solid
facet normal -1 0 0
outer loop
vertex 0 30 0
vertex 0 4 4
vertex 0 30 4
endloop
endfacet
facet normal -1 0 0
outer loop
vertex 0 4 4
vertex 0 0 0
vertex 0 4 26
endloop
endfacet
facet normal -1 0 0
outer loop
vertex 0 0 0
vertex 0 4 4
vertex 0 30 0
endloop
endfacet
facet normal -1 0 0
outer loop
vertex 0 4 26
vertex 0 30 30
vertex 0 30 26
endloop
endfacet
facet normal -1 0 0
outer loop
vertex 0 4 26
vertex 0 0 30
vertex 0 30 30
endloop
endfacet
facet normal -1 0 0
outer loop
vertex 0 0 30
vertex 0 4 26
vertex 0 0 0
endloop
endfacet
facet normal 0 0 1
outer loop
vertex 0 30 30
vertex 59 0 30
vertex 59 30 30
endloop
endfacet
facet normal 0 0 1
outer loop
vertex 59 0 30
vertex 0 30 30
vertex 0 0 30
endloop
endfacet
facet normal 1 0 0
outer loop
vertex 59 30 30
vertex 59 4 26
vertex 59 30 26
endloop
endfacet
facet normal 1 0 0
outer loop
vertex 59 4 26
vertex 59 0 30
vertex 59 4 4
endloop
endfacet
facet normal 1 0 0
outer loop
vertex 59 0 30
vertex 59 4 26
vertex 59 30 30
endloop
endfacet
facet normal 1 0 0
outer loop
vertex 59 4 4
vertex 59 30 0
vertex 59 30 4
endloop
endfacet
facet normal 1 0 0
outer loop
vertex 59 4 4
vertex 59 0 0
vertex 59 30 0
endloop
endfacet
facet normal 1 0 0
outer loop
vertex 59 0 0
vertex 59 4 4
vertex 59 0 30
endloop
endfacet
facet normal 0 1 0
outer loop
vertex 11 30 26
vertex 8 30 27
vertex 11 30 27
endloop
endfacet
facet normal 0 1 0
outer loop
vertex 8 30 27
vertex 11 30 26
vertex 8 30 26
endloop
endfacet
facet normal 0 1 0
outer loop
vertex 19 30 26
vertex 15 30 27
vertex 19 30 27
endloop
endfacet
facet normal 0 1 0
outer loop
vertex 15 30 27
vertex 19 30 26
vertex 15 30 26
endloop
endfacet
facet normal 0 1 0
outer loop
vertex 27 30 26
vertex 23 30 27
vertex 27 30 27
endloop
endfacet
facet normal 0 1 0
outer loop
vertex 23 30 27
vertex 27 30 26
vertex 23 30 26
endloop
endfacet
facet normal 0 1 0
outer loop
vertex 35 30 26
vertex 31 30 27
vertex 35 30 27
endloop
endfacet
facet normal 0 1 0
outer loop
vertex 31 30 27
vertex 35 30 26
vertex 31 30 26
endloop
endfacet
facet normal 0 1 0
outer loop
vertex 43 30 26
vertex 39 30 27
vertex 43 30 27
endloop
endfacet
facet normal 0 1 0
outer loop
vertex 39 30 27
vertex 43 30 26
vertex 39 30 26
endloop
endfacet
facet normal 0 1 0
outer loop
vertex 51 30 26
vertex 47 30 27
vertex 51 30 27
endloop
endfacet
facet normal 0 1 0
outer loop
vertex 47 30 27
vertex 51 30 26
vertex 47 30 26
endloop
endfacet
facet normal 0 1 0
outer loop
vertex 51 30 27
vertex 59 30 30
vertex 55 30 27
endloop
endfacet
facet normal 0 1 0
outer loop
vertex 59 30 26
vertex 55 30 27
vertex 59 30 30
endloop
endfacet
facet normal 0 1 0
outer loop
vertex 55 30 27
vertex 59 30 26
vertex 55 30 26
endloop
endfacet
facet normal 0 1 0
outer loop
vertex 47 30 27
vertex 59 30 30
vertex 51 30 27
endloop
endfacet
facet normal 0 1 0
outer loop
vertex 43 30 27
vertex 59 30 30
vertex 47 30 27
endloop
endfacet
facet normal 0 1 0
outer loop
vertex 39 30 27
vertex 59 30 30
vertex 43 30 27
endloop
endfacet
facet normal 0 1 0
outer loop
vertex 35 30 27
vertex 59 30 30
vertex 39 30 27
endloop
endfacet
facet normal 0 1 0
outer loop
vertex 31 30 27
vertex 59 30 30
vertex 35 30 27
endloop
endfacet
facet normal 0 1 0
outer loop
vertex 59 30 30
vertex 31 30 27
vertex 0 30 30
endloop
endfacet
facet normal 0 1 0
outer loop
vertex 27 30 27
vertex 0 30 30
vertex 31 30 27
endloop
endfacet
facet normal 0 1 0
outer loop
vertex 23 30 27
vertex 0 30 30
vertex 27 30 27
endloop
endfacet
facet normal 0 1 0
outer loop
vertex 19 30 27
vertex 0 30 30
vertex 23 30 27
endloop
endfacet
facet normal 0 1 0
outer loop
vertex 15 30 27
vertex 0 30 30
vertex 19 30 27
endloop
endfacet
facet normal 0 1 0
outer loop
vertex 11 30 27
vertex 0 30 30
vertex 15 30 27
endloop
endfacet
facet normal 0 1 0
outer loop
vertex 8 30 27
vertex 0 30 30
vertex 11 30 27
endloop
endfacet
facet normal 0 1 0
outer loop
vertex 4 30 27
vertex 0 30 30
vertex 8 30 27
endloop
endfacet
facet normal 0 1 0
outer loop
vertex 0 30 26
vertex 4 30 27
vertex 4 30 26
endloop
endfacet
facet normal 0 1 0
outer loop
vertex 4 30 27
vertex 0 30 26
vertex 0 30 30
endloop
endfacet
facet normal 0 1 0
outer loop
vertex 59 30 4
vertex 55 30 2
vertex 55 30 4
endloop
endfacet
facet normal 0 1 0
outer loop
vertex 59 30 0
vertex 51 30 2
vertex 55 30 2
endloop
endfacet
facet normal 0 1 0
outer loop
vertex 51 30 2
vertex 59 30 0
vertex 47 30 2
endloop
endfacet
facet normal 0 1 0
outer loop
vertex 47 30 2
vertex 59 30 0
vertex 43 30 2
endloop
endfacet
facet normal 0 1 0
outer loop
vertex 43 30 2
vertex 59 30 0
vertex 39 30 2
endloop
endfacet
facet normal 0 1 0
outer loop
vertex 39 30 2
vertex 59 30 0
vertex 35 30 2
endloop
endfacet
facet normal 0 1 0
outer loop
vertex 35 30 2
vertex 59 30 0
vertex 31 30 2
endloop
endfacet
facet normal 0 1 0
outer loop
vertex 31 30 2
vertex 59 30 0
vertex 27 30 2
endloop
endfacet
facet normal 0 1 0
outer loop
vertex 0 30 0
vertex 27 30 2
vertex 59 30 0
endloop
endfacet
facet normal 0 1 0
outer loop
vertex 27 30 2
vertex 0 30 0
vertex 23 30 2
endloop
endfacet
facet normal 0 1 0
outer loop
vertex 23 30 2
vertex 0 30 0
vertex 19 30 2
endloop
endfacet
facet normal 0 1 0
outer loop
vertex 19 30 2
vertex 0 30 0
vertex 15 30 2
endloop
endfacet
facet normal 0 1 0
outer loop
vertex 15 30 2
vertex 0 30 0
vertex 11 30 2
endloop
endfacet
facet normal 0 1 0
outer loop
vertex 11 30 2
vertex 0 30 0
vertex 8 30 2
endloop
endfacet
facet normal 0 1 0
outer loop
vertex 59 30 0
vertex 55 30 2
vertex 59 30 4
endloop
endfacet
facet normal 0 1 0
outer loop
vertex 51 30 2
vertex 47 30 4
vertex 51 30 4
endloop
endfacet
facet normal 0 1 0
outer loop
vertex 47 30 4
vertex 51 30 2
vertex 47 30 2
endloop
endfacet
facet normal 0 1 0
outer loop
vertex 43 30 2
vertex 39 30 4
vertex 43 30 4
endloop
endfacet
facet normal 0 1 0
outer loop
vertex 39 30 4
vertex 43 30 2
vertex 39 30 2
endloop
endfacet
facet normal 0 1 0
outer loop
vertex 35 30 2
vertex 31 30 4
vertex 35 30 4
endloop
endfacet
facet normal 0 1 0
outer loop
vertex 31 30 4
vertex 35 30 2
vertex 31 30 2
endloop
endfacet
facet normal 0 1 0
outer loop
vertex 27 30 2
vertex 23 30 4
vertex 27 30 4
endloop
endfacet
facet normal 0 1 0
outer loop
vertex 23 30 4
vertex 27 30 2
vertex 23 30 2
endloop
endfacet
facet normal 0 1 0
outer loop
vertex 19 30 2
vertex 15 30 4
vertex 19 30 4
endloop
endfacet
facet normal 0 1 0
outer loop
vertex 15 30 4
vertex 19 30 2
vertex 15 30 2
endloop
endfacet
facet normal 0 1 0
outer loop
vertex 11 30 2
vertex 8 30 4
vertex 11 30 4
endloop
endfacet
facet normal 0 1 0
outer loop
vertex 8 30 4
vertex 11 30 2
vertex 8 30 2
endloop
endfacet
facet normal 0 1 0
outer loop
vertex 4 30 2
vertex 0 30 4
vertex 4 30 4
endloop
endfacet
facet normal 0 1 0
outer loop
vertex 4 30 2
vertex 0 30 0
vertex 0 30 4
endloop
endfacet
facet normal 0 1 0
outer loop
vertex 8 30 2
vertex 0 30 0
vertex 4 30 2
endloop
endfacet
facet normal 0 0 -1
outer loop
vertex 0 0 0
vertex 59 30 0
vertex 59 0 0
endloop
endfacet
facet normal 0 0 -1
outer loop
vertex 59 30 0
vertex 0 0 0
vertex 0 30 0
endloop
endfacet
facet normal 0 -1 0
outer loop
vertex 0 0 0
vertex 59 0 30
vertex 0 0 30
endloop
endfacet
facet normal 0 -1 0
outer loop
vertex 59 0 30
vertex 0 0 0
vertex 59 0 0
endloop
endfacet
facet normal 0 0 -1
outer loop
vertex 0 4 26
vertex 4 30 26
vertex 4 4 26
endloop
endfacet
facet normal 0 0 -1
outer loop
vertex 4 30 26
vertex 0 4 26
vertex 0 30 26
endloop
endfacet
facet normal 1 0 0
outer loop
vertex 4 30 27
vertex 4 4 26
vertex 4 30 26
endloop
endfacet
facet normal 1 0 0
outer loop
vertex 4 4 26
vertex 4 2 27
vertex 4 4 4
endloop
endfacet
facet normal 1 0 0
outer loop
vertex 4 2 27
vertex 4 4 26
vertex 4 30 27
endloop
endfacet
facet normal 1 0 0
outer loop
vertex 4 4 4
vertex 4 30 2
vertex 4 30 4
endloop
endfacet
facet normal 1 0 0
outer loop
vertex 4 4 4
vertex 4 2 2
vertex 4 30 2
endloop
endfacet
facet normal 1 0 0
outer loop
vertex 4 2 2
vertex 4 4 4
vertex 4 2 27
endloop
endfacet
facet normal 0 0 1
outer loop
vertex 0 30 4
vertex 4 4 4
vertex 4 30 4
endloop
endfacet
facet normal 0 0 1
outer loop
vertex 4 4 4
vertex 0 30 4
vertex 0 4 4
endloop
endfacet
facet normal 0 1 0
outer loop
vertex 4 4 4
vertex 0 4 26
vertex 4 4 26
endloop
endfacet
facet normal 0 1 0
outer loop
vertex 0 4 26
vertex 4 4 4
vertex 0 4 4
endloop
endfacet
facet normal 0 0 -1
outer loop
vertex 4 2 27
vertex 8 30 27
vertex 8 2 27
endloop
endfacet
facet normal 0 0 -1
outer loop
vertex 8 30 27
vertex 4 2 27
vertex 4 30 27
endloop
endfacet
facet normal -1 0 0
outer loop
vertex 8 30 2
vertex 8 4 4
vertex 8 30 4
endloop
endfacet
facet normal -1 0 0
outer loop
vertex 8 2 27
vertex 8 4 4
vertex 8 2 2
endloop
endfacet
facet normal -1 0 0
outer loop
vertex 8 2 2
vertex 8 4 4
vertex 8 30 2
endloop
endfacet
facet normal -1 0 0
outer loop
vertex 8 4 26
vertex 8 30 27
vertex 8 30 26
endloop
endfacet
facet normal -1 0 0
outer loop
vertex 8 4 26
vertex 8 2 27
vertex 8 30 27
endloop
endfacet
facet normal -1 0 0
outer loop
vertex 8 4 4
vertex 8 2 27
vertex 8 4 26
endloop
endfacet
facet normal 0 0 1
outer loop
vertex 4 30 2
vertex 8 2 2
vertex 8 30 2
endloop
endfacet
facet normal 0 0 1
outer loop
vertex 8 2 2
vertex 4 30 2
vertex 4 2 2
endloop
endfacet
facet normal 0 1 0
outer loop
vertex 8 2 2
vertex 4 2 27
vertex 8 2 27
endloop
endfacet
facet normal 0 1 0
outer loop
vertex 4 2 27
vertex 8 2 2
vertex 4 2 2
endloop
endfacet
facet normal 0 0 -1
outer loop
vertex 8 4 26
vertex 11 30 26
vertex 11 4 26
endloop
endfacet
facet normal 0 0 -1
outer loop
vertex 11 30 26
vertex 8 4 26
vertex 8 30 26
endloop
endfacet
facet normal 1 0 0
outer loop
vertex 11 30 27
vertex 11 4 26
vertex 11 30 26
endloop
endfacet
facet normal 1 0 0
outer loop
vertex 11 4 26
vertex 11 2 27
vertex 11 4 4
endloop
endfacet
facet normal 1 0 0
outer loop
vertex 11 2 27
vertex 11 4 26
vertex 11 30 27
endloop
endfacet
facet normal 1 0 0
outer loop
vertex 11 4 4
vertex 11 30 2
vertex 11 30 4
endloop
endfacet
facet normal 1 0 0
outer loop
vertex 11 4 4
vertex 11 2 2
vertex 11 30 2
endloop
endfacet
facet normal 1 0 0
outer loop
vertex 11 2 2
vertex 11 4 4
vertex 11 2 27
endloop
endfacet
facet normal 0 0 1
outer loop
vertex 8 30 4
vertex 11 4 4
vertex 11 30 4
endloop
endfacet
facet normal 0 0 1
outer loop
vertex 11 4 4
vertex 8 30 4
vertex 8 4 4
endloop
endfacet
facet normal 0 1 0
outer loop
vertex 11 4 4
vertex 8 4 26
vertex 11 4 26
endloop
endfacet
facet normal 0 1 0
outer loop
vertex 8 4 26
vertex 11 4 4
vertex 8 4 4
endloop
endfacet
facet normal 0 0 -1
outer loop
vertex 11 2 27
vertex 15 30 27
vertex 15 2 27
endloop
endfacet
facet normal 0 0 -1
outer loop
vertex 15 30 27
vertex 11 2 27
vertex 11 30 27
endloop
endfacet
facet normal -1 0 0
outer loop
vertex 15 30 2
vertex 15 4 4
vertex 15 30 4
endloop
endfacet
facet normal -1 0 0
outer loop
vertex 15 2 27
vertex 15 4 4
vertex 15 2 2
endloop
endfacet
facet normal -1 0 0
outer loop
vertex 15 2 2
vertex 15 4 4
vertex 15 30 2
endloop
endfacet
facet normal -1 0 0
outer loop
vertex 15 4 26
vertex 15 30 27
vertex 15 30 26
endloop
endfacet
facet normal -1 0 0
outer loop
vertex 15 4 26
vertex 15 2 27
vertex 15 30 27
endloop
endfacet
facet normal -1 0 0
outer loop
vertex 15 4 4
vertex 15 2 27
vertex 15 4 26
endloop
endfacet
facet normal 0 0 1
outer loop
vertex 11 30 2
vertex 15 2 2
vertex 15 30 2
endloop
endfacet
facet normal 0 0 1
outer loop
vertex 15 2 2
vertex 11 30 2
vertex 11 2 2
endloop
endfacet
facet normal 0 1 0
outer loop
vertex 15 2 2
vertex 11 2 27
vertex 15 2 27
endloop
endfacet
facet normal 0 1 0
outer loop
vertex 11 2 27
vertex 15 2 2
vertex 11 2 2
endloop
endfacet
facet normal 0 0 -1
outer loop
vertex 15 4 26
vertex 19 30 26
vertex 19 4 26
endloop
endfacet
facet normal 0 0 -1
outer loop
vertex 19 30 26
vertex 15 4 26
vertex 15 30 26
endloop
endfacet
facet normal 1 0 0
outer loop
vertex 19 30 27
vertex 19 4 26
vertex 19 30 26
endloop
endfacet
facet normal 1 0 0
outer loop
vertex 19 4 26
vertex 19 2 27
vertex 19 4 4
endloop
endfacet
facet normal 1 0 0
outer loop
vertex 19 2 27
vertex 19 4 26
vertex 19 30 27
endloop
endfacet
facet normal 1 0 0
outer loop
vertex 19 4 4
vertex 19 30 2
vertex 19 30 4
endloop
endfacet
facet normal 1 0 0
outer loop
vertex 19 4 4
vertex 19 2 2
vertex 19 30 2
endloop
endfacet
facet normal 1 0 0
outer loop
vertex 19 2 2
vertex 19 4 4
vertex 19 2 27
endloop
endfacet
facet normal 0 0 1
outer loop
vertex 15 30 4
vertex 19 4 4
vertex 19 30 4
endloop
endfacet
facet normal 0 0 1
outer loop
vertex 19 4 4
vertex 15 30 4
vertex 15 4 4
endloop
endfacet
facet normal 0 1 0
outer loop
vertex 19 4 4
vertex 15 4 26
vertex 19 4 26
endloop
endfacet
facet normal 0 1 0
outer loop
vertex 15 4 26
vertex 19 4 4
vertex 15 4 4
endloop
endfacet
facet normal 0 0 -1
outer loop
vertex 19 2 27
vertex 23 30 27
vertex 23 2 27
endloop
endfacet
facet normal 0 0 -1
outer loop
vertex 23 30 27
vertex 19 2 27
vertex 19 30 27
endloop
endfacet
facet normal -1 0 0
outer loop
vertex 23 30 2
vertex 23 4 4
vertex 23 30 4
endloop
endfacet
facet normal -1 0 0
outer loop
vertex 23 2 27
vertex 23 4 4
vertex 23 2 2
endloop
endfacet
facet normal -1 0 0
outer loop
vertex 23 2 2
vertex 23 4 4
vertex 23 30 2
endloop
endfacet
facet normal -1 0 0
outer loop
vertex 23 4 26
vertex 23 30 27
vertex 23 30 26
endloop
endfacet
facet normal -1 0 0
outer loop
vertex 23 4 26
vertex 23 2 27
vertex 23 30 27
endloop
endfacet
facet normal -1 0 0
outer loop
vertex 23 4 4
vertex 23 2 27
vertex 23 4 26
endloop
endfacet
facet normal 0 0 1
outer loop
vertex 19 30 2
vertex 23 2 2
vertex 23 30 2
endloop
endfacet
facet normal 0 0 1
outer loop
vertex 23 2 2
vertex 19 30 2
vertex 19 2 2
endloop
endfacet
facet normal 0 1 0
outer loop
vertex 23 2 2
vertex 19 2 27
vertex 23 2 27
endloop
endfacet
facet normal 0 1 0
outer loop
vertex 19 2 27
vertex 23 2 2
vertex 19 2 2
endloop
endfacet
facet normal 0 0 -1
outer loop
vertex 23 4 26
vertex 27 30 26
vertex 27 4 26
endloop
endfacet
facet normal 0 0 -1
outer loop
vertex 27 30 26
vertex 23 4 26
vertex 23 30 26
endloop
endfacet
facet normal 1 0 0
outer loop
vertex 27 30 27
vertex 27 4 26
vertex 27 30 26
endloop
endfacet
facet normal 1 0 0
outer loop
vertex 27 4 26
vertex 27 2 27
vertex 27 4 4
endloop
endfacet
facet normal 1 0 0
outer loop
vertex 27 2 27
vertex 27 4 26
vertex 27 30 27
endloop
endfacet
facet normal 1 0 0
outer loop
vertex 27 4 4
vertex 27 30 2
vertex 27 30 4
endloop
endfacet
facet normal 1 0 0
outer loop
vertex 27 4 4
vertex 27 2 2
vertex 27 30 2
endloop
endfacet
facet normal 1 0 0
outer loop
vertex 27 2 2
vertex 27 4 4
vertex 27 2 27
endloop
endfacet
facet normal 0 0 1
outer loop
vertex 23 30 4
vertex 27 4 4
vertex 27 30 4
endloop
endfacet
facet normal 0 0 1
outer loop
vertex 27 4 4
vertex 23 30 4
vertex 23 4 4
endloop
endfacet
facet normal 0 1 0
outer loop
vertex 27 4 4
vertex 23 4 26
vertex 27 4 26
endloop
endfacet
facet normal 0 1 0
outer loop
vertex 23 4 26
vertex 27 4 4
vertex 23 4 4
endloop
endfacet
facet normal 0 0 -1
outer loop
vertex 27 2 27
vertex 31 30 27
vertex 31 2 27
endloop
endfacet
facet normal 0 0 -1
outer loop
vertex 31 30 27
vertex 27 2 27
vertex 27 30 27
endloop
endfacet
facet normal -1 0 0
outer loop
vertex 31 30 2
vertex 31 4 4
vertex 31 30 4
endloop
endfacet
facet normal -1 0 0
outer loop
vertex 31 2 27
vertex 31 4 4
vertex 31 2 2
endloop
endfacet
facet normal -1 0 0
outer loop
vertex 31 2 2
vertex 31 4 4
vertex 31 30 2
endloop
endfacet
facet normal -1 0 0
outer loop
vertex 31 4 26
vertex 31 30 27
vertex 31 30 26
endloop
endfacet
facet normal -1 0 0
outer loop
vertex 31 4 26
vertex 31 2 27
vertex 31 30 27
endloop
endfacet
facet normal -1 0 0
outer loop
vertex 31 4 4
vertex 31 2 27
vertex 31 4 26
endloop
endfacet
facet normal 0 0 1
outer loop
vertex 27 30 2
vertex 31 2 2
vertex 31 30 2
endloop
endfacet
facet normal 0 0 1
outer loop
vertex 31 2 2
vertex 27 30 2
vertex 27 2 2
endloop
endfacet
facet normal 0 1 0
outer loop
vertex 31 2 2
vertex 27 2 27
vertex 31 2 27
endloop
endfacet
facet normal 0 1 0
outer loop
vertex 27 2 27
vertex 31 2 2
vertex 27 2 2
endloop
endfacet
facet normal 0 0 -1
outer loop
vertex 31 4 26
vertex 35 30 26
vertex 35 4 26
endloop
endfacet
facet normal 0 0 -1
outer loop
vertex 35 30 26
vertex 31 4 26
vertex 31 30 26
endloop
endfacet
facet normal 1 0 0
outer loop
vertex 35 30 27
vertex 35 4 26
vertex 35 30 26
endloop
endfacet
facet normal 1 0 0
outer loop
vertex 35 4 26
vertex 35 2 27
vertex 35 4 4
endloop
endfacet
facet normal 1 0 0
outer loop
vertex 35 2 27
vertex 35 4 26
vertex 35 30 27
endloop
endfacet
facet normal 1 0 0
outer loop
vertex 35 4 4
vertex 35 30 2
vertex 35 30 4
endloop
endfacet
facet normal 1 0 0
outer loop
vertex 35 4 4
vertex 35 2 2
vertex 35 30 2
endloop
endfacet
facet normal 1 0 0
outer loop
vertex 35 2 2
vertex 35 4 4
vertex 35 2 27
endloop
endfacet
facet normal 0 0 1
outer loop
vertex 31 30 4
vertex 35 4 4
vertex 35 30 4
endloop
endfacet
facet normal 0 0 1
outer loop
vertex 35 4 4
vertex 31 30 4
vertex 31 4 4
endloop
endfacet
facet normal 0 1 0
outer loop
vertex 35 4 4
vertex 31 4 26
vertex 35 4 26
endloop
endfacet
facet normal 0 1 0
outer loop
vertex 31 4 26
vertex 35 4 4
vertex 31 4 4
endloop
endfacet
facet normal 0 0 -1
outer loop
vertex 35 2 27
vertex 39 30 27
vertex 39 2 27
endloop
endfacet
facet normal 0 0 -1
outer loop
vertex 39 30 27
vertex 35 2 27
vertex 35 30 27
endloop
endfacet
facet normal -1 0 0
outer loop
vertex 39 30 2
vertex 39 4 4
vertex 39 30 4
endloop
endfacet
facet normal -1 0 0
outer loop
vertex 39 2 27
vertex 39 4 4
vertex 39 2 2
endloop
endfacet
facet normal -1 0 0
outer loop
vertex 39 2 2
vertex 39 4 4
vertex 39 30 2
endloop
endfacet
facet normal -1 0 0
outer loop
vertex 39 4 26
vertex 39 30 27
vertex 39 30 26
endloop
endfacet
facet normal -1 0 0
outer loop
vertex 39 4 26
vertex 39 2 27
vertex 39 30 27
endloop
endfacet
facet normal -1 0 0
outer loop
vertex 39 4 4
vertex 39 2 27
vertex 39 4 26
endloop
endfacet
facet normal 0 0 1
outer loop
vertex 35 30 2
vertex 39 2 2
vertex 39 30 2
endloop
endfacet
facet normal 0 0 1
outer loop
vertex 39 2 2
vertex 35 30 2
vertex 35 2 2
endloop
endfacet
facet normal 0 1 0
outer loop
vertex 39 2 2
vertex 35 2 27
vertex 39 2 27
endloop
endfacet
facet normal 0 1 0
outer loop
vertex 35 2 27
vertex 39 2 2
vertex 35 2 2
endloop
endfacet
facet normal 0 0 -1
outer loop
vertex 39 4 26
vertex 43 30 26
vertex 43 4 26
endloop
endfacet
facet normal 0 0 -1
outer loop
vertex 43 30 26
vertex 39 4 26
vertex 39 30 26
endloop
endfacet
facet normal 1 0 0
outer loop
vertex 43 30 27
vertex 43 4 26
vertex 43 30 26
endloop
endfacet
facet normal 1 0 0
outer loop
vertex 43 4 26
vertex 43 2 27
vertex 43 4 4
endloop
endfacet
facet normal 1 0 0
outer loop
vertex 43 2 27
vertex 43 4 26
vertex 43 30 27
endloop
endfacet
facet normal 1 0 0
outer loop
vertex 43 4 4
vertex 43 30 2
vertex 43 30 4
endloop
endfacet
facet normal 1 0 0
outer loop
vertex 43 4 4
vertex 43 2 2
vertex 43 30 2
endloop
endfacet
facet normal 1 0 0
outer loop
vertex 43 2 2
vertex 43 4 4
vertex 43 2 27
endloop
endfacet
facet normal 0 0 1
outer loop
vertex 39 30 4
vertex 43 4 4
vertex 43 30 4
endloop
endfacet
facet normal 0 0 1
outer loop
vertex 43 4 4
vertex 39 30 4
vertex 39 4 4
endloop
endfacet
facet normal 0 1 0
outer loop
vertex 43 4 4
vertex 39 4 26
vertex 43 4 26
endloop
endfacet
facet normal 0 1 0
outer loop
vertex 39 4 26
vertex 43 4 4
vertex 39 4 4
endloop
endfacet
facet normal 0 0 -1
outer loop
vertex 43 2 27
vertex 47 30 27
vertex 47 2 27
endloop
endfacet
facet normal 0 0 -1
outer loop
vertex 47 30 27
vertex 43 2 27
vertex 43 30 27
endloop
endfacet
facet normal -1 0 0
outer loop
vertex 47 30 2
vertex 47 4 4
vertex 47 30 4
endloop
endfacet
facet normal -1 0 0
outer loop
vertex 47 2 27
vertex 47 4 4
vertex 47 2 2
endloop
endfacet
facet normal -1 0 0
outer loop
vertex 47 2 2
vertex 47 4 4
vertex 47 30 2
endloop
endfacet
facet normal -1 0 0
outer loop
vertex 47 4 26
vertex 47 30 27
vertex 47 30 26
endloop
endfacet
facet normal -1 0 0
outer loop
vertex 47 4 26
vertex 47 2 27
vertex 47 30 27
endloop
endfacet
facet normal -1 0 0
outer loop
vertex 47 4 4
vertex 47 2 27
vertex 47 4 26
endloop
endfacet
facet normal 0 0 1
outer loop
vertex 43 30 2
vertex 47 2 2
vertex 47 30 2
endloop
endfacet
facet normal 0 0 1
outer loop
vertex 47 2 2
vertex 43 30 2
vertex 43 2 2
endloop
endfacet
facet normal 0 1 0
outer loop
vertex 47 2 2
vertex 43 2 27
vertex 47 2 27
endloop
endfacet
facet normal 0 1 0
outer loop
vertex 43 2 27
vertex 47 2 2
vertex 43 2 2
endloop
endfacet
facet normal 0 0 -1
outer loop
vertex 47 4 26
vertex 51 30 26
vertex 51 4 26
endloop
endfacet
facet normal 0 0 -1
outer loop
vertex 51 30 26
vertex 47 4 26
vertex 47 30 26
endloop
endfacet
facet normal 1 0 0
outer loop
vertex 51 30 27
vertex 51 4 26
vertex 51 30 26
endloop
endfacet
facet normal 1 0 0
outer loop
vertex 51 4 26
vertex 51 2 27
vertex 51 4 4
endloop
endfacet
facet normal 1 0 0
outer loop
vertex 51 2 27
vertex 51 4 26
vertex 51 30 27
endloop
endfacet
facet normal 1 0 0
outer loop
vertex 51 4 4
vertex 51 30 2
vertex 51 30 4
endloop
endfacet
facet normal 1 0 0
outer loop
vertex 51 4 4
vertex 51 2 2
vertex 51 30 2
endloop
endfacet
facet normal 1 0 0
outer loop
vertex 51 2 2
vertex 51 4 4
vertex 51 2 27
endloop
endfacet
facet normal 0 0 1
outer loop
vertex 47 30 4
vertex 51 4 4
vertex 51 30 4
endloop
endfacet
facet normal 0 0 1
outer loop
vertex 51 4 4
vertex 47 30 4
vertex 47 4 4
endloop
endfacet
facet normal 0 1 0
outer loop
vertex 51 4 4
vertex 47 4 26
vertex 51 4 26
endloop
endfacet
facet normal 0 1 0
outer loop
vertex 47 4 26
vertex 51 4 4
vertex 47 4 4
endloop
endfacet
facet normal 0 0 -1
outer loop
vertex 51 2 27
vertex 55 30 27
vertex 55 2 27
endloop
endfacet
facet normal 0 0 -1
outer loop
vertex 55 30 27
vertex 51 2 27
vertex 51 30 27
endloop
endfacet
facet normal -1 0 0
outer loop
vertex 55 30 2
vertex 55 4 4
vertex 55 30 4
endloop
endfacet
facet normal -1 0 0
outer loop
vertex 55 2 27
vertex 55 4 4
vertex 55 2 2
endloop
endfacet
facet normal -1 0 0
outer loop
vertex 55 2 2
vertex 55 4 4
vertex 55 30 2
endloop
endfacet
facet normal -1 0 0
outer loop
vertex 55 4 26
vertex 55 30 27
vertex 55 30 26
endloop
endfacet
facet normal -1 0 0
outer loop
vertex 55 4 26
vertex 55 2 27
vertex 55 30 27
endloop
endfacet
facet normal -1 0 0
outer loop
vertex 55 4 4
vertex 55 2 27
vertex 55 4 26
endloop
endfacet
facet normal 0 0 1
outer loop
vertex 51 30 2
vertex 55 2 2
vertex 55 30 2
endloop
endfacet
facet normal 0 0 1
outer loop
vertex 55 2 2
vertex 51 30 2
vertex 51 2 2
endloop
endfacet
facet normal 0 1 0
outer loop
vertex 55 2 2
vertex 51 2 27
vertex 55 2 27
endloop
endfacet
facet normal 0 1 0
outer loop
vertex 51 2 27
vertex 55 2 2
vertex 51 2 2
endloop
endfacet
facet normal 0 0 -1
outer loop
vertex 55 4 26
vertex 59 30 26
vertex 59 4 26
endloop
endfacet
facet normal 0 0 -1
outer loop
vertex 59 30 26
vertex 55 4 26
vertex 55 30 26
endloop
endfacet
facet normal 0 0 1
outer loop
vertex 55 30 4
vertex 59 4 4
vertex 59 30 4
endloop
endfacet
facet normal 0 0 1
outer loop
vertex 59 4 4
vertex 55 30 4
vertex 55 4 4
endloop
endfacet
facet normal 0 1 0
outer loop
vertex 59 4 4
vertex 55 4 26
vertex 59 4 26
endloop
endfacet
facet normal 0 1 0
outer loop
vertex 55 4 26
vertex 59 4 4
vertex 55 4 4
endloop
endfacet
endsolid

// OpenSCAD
difference () {
cube([59, 30, 30]);

translate([0, 4, 4])
cube([4, 30, 22]);

translate([4, 2, 2])
cube([4, 35, 25]);

translate([7, 4, 4])
cube([4, 30, 22]);

translate([11, 2, 2])
cube([4, 35, 25]);
    
translate([15, 4, 4])
cube([4, 30, 22]);

translate([19, 2, 2])
cube([4, 35, 25]);    

translate([23, 4, 4])
cube([4, 30, 22]);

translate([27, 2, 2])
cube([4, 35, 25]);

translate([31, 4, 4])
cube([4, 30, 22]);

translate([35, 2, 2])
cube([4, 35, 25]);

translate([39, 4, 4])
cube([4, 30, 22]);

translate([43, 2, 2])
cube([4, 35, 25]);

translate([47, 4, 4])
cube([4, 30, 22]);

translate([51, 2, 2])
cube([4, 35, 25]);

translate([55, 4, 4])
cube([4, 30, 22]);


}
